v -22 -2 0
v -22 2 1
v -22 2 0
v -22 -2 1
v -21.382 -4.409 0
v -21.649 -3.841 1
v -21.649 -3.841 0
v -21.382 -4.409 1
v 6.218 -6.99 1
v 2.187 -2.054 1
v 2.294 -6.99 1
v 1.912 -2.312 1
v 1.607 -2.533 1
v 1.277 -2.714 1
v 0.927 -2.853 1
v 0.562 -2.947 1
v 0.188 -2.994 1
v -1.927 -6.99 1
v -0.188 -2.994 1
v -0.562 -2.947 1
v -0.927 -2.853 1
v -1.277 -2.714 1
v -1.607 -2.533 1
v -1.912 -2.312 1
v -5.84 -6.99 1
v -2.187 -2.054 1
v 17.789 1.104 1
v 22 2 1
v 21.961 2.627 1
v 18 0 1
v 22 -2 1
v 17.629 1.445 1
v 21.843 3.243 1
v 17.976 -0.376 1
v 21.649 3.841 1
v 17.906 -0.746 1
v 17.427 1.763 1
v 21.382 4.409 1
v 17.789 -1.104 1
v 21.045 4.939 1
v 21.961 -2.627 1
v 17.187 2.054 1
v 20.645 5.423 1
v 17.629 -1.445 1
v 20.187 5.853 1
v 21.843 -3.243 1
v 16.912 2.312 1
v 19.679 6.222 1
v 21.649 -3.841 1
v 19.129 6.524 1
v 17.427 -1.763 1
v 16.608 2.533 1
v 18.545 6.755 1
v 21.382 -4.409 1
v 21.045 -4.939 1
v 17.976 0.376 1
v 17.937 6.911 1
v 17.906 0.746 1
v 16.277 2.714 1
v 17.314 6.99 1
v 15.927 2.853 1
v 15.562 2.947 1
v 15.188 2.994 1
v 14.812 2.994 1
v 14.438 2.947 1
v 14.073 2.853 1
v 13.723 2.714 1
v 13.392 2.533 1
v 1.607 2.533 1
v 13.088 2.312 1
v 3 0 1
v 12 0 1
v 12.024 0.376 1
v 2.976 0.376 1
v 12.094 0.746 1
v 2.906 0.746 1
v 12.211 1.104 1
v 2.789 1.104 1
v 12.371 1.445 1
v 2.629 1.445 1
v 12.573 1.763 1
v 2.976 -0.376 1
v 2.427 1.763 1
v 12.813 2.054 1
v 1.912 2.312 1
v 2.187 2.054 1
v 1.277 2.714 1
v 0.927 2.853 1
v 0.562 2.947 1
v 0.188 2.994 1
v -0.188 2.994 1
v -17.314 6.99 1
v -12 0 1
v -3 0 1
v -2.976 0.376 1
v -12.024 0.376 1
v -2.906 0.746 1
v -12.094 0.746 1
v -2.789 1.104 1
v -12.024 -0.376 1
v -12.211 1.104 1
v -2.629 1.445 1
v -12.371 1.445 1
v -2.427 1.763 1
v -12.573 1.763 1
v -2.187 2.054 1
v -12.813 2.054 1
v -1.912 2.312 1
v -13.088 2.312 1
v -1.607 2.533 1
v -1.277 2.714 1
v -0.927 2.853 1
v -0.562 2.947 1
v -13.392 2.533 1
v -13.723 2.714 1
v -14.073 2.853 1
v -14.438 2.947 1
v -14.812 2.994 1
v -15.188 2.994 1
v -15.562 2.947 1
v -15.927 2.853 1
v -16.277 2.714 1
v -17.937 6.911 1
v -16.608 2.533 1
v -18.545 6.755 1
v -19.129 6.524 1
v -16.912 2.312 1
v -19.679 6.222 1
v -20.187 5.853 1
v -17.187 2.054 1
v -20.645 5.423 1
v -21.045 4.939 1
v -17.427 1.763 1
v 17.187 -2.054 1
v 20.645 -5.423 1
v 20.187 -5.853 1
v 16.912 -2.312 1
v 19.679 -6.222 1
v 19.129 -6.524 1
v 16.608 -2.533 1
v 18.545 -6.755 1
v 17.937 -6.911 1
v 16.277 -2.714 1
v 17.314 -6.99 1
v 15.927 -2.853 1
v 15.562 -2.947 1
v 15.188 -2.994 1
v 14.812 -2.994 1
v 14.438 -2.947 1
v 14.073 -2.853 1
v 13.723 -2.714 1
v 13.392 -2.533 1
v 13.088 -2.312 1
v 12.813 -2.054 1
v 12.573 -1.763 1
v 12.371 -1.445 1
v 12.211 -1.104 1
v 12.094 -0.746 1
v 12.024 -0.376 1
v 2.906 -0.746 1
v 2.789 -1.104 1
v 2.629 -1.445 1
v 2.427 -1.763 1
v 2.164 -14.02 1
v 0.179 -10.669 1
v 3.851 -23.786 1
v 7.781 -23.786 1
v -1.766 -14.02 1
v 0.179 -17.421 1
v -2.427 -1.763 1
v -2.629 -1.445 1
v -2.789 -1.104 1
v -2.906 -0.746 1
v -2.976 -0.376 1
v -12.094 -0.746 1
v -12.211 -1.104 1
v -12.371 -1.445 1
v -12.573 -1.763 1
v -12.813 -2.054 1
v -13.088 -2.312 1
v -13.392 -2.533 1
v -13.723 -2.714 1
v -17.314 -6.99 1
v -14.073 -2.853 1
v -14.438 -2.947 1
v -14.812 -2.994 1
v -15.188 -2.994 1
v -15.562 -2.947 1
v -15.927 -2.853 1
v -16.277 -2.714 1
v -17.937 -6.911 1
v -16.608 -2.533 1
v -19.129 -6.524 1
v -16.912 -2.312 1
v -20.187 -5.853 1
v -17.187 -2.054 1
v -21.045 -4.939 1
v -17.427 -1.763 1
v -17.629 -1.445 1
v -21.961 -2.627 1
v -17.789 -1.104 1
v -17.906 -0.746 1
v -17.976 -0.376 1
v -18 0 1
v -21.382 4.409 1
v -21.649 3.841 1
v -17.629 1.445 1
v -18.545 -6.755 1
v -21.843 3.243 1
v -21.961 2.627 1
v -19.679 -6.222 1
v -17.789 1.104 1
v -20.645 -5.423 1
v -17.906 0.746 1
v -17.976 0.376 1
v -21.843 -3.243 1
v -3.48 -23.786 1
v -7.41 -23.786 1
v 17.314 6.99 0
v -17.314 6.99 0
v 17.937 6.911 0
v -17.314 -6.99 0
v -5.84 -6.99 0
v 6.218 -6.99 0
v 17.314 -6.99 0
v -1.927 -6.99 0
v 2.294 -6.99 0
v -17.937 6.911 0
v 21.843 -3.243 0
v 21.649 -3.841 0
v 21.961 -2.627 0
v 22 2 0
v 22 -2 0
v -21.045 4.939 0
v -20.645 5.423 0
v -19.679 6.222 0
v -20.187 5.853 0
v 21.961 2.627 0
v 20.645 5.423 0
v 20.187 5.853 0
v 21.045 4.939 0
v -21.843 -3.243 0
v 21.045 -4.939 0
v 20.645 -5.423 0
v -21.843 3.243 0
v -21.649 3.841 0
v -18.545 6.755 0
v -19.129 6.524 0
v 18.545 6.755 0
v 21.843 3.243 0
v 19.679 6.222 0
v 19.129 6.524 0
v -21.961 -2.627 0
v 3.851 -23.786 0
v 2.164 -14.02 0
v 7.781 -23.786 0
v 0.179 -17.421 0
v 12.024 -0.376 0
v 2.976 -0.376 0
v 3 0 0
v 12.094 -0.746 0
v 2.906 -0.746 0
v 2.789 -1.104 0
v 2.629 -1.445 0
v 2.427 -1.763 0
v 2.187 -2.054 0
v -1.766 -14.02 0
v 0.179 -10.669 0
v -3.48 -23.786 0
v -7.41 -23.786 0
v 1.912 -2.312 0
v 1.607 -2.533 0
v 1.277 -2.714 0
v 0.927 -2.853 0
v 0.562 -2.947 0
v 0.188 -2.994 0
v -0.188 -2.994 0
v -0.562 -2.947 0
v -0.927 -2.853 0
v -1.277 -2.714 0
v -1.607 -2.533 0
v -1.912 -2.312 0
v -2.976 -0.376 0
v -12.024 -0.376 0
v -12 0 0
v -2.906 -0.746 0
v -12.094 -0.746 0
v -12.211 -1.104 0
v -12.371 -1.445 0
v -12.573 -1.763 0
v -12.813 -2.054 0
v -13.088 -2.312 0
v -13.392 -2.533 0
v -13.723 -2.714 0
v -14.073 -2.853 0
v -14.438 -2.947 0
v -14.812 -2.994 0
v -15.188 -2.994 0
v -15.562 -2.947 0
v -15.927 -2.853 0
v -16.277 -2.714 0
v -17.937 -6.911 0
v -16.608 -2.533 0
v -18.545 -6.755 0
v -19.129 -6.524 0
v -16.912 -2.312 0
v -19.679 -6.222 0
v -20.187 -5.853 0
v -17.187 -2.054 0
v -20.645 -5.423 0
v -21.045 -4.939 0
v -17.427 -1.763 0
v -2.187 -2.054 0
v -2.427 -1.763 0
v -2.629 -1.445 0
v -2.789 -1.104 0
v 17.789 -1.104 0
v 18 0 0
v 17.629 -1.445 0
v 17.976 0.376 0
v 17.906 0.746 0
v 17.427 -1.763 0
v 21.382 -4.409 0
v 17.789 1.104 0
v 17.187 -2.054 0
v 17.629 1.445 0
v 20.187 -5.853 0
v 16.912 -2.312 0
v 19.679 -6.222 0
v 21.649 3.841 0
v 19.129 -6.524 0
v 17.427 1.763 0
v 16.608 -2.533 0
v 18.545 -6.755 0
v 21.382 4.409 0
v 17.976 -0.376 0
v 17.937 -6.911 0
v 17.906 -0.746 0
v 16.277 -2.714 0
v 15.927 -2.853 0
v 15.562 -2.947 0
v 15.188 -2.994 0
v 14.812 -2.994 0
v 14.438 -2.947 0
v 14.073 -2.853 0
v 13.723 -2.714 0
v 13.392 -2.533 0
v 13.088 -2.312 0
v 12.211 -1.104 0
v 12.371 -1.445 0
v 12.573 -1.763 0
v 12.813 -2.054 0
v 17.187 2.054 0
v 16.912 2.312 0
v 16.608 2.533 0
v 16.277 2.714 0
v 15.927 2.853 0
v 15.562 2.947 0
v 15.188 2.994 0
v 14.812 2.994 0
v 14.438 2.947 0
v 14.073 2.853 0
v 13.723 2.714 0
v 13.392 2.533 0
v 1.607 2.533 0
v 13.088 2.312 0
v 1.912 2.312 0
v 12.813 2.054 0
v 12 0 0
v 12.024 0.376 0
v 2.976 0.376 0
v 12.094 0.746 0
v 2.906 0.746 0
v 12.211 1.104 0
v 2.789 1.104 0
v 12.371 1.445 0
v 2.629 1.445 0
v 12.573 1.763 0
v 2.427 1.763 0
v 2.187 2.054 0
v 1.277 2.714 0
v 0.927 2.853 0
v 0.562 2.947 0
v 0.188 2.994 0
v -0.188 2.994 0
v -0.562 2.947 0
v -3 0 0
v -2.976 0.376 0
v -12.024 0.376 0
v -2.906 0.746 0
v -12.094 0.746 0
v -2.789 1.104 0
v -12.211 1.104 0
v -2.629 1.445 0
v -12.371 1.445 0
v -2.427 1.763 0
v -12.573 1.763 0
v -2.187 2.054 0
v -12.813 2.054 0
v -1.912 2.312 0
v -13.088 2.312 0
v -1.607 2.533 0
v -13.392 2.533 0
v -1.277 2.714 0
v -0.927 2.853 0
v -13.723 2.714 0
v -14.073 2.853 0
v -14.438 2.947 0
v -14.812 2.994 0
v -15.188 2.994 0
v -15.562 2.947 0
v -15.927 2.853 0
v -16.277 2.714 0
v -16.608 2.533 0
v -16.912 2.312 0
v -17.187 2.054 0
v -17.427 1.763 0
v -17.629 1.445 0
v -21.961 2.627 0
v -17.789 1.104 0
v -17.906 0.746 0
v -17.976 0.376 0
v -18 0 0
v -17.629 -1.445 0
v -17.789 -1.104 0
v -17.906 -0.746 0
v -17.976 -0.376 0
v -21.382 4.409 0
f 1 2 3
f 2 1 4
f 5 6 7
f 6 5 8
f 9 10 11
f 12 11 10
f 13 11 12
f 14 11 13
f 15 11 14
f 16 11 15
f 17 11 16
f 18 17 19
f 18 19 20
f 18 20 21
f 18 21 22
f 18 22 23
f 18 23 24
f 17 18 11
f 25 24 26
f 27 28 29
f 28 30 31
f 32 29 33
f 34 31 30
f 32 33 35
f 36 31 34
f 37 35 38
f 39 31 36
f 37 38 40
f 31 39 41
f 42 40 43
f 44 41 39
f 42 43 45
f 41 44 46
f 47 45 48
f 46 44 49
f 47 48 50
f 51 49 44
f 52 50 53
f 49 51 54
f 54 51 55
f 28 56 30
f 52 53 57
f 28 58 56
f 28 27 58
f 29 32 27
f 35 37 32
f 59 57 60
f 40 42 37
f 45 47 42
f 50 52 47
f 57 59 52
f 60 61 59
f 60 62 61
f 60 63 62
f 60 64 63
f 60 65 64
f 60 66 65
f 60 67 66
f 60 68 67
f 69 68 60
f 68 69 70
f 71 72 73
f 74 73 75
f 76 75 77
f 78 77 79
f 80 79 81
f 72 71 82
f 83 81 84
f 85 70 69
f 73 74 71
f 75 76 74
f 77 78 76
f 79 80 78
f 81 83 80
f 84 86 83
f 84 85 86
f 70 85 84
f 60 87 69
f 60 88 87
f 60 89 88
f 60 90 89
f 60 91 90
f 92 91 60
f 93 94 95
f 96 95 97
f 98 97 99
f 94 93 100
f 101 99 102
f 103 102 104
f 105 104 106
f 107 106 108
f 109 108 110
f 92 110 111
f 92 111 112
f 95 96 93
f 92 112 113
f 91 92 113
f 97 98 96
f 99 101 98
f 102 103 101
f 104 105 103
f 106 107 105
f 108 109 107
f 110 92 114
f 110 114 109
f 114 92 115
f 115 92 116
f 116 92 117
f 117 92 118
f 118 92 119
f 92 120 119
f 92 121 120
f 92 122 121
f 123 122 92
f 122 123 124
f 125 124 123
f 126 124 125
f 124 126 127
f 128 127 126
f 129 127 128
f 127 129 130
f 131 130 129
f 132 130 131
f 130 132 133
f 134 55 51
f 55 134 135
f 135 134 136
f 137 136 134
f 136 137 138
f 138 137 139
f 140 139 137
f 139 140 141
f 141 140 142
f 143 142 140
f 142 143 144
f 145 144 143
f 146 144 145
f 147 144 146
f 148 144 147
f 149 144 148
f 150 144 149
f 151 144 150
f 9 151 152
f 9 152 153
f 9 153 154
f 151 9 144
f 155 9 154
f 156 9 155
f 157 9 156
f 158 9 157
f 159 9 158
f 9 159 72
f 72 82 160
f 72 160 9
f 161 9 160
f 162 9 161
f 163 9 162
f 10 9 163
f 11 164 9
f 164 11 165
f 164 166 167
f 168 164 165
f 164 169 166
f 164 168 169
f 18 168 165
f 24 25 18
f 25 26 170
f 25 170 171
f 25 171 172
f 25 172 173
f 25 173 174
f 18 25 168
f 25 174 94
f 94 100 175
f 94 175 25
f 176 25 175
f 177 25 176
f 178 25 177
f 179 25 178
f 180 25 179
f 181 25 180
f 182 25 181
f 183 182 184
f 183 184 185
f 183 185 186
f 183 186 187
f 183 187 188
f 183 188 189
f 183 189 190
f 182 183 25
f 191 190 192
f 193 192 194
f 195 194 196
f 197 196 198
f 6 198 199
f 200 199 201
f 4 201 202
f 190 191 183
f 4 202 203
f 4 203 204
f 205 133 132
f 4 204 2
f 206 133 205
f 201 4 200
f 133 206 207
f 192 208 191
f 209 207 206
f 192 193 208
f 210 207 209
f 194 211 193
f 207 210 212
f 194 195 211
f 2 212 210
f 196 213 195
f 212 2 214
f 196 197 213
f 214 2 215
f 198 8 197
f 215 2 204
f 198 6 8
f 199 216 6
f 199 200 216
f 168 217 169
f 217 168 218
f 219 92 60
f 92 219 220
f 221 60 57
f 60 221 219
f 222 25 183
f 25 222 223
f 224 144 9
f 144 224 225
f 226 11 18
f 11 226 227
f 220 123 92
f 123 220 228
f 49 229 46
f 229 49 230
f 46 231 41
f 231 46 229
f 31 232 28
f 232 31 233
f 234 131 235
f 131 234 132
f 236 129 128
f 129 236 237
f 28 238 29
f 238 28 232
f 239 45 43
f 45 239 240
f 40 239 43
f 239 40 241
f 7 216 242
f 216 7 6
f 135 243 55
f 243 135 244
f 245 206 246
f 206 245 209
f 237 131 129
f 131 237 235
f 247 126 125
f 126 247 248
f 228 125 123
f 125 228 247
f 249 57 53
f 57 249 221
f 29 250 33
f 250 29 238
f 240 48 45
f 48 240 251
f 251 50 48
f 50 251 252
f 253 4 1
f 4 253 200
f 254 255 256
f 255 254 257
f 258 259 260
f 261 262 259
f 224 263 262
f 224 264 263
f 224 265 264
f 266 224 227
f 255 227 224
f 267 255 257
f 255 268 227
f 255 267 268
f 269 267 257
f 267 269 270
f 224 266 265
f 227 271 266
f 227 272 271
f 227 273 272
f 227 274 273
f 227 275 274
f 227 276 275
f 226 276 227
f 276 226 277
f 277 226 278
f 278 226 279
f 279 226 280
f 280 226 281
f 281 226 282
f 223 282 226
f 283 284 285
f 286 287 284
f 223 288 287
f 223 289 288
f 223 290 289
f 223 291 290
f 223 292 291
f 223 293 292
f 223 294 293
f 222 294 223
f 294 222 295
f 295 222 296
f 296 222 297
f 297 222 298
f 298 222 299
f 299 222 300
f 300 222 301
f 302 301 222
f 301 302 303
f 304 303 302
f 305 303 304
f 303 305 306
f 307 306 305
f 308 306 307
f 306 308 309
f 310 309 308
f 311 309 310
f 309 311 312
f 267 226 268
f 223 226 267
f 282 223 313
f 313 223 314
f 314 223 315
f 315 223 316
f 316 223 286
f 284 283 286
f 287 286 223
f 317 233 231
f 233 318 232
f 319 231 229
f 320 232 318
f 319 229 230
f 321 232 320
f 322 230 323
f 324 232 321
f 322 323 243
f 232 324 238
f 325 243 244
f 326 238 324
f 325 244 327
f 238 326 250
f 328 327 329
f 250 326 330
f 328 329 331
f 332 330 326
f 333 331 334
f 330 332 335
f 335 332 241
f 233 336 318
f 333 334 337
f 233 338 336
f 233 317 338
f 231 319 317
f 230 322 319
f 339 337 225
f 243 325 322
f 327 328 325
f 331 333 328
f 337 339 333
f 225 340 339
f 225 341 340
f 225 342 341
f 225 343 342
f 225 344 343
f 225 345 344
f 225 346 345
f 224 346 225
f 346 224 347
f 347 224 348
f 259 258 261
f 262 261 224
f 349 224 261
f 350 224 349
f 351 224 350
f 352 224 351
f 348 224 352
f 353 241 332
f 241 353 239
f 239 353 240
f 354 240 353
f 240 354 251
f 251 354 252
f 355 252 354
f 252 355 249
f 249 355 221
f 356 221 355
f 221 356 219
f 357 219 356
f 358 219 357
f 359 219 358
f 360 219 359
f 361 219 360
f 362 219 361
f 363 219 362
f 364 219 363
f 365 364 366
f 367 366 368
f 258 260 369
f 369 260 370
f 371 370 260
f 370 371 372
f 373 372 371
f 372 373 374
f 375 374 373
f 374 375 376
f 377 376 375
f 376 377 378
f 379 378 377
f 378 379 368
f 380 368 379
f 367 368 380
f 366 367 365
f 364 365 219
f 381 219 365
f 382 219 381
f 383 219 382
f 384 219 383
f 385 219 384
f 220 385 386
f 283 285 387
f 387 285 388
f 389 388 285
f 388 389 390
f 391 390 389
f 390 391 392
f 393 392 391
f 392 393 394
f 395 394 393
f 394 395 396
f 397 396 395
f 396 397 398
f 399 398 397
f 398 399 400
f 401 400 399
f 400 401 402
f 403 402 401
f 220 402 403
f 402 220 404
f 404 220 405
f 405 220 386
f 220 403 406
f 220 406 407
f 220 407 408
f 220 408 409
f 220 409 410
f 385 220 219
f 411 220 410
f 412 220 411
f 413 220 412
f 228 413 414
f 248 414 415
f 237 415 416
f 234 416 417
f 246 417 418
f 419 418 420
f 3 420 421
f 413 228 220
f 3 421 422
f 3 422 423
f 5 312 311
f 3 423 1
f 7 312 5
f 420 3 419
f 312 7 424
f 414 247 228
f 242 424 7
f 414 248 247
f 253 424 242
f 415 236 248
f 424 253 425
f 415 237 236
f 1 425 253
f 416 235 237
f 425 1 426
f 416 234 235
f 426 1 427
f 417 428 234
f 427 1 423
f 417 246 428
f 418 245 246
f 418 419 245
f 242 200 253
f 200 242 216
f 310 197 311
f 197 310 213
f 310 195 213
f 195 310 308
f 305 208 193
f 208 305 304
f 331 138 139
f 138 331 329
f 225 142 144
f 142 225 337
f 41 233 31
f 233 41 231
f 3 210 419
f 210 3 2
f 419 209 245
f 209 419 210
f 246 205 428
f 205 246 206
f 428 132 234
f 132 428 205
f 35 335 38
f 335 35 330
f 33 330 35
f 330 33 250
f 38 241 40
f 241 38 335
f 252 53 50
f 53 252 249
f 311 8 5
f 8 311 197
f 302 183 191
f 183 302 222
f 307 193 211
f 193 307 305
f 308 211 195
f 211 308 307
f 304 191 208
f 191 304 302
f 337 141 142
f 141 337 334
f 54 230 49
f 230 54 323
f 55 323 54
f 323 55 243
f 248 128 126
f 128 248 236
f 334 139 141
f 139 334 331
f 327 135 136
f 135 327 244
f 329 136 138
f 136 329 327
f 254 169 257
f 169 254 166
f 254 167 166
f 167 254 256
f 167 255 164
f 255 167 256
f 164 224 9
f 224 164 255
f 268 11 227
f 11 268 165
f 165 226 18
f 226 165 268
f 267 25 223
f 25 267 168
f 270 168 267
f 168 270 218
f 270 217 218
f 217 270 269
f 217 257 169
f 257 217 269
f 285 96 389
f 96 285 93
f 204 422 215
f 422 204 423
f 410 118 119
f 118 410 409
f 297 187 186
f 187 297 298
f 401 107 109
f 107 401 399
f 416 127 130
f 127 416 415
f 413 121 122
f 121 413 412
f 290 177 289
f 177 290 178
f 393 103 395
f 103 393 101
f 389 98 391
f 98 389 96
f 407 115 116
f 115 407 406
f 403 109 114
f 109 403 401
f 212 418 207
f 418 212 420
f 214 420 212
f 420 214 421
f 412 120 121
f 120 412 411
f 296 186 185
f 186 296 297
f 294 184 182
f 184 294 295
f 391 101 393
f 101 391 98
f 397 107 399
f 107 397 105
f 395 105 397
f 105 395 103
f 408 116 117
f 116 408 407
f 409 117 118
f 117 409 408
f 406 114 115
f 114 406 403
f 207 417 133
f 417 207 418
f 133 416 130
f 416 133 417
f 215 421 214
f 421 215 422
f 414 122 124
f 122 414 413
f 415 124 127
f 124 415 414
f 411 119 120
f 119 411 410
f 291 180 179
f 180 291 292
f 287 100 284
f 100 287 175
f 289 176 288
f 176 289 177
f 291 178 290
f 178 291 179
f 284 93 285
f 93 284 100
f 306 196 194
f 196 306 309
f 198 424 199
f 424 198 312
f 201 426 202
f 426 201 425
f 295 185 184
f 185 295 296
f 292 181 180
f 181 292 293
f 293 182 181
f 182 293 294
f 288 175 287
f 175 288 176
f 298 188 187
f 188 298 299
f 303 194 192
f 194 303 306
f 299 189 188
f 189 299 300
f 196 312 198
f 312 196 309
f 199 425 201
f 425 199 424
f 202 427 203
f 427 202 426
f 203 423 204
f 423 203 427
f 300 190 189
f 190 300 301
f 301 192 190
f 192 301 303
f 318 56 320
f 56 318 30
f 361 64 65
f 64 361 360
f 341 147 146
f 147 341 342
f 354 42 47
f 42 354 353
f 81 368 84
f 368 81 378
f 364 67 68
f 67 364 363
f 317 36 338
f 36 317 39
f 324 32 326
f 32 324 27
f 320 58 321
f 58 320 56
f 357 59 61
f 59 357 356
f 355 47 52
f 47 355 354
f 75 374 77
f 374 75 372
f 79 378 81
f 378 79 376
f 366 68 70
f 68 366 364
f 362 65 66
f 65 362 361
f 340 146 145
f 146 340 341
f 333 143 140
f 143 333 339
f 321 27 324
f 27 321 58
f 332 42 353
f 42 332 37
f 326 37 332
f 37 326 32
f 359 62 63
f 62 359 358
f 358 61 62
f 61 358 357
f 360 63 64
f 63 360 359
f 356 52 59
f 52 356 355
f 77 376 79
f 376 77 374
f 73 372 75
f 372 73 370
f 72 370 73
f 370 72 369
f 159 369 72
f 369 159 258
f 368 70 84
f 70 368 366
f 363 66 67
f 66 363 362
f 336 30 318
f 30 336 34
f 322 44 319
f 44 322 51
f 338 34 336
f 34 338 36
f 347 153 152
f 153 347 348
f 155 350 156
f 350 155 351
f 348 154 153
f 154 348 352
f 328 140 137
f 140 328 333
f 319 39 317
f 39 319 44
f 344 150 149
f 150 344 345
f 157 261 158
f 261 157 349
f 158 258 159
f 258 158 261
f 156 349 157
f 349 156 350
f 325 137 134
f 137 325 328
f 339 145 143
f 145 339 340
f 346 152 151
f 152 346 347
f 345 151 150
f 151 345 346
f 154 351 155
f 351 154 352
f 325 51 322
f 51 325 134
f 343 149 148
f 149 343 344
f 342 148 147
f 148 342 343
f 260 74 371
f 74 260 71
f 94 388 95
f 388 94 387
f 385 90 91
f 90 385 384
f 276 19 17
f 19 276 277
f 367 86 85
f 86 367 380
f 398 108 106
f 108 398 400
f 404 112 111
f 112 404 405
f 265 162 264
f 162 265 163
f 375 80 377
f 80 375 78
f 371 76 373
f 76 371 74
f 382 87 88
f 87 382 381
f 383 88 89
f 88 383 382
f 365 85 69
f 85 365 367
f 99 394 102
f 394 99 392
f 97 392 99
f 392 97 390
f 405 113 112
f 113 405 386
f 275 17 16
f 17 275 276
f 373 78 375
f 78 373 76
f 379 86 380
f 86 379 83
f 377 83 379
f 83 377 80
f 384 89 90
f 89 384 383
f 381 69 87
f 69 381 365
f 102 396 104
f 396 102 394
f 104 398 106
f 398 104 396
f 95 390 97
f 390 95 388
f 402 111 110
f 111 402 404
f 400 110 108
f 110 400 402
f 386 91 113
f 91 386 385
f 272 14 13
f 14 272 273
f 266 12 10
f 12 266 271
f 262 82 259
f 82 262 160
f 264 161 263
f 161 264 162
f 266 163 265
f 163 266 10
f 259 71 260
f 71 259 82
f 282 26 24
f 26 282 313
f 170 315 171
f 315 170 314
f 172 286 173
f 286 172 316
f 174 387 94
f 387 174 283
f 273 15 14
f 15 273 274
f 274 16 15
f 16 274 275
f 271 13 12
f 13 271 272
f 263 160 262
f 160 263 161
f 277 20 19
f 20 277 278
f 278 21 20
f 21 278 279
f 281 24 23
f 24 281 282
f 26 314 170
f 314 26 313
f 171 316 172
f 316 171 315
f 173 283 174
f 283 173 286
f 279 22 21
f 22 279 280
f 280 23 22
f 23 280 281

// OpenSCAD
$fn = 50;


difference() {
	union() {
		translate(v = [0, 0, 0]) {
			rotate(a = [0, 0, 0]) {
				hull() {
					translate(v = [-17.0000000000, 2.0000000000, 0]) {
						rotate(a = [0, 0, 0]) {
							translate(v = [0, 0, 0]) {
								rotate(a = [0, 0, 0]) {
									cylinder(h = 1, r = 5);
								}
							}
						}
					}
					translate(v = [17.0000000000, 2.0000000000, 0]) {
						rotate(a = [0, 0, 0]) {
							translate(v = [0, 0, 0]) {
								rotate(a = [0, 0, 0]) {
									cylinder(h = 1, r = 5);
								}
							}
						}
					}
					translate(v = [-17.0000000000, -2.0000000000, 0]) {
						rotate(a = [0, 0, 0]) {
							translate(v = [0, 0, 0]) {
								rotate(a = [0, 0, 0]) {
									cylinder(h = 1, r = 5);
								}
							}
						}
					}
					translate(v = [17.0000000000, -2.0000000000, 0]) {
						rotate(a = [0, 0, 0]) {
							translate(v = [0, 0, 0]) {
								rotate(a = [0, 0, 0]) {
									cylinder(h = 1, r = 5);
								}
							}
						}
					}
				}
			}
		}
		translate(v = [0, -5, 0]) {
			rotate(a = [0, 0, 0]) {
				linear_extrude(height = 1) {
					text(font = "DejaVu Sans Mono:style=Bold", halign = "center", size = 19.0000000000, text = "X", valign = "top");
				}
			}
		}
	}
	union() {
		translate(v = [-15.0000000000, 0.0000000000, -125.0000000000]) {
			rotate(a = [0, 0, 0]) {
				cylinder(h = 250, r = 3.0000000000);
			}
		}
		translate(v = [15.0000000000, 0.0000000000, -125.0000000000]) {
			rotate(a = [0, 0, 0]) {
				cylinder(h = 250, r = 3.0000000000);
			}
		}
		translate(v = [15.0000000000, 0.0000000000, -125.0000000000]) {
			rotate(a = [0, 0, 0]) {
				cylinder(h = 250, r = 3.0000000000);
			}
		}
		translate(v = [0, 0, -125.0000000000]) {
			rotate(a = [0, 0, 0]) {
				cylinder(h = 250, r = 3.0000000000);
			}
		}
	}
}
